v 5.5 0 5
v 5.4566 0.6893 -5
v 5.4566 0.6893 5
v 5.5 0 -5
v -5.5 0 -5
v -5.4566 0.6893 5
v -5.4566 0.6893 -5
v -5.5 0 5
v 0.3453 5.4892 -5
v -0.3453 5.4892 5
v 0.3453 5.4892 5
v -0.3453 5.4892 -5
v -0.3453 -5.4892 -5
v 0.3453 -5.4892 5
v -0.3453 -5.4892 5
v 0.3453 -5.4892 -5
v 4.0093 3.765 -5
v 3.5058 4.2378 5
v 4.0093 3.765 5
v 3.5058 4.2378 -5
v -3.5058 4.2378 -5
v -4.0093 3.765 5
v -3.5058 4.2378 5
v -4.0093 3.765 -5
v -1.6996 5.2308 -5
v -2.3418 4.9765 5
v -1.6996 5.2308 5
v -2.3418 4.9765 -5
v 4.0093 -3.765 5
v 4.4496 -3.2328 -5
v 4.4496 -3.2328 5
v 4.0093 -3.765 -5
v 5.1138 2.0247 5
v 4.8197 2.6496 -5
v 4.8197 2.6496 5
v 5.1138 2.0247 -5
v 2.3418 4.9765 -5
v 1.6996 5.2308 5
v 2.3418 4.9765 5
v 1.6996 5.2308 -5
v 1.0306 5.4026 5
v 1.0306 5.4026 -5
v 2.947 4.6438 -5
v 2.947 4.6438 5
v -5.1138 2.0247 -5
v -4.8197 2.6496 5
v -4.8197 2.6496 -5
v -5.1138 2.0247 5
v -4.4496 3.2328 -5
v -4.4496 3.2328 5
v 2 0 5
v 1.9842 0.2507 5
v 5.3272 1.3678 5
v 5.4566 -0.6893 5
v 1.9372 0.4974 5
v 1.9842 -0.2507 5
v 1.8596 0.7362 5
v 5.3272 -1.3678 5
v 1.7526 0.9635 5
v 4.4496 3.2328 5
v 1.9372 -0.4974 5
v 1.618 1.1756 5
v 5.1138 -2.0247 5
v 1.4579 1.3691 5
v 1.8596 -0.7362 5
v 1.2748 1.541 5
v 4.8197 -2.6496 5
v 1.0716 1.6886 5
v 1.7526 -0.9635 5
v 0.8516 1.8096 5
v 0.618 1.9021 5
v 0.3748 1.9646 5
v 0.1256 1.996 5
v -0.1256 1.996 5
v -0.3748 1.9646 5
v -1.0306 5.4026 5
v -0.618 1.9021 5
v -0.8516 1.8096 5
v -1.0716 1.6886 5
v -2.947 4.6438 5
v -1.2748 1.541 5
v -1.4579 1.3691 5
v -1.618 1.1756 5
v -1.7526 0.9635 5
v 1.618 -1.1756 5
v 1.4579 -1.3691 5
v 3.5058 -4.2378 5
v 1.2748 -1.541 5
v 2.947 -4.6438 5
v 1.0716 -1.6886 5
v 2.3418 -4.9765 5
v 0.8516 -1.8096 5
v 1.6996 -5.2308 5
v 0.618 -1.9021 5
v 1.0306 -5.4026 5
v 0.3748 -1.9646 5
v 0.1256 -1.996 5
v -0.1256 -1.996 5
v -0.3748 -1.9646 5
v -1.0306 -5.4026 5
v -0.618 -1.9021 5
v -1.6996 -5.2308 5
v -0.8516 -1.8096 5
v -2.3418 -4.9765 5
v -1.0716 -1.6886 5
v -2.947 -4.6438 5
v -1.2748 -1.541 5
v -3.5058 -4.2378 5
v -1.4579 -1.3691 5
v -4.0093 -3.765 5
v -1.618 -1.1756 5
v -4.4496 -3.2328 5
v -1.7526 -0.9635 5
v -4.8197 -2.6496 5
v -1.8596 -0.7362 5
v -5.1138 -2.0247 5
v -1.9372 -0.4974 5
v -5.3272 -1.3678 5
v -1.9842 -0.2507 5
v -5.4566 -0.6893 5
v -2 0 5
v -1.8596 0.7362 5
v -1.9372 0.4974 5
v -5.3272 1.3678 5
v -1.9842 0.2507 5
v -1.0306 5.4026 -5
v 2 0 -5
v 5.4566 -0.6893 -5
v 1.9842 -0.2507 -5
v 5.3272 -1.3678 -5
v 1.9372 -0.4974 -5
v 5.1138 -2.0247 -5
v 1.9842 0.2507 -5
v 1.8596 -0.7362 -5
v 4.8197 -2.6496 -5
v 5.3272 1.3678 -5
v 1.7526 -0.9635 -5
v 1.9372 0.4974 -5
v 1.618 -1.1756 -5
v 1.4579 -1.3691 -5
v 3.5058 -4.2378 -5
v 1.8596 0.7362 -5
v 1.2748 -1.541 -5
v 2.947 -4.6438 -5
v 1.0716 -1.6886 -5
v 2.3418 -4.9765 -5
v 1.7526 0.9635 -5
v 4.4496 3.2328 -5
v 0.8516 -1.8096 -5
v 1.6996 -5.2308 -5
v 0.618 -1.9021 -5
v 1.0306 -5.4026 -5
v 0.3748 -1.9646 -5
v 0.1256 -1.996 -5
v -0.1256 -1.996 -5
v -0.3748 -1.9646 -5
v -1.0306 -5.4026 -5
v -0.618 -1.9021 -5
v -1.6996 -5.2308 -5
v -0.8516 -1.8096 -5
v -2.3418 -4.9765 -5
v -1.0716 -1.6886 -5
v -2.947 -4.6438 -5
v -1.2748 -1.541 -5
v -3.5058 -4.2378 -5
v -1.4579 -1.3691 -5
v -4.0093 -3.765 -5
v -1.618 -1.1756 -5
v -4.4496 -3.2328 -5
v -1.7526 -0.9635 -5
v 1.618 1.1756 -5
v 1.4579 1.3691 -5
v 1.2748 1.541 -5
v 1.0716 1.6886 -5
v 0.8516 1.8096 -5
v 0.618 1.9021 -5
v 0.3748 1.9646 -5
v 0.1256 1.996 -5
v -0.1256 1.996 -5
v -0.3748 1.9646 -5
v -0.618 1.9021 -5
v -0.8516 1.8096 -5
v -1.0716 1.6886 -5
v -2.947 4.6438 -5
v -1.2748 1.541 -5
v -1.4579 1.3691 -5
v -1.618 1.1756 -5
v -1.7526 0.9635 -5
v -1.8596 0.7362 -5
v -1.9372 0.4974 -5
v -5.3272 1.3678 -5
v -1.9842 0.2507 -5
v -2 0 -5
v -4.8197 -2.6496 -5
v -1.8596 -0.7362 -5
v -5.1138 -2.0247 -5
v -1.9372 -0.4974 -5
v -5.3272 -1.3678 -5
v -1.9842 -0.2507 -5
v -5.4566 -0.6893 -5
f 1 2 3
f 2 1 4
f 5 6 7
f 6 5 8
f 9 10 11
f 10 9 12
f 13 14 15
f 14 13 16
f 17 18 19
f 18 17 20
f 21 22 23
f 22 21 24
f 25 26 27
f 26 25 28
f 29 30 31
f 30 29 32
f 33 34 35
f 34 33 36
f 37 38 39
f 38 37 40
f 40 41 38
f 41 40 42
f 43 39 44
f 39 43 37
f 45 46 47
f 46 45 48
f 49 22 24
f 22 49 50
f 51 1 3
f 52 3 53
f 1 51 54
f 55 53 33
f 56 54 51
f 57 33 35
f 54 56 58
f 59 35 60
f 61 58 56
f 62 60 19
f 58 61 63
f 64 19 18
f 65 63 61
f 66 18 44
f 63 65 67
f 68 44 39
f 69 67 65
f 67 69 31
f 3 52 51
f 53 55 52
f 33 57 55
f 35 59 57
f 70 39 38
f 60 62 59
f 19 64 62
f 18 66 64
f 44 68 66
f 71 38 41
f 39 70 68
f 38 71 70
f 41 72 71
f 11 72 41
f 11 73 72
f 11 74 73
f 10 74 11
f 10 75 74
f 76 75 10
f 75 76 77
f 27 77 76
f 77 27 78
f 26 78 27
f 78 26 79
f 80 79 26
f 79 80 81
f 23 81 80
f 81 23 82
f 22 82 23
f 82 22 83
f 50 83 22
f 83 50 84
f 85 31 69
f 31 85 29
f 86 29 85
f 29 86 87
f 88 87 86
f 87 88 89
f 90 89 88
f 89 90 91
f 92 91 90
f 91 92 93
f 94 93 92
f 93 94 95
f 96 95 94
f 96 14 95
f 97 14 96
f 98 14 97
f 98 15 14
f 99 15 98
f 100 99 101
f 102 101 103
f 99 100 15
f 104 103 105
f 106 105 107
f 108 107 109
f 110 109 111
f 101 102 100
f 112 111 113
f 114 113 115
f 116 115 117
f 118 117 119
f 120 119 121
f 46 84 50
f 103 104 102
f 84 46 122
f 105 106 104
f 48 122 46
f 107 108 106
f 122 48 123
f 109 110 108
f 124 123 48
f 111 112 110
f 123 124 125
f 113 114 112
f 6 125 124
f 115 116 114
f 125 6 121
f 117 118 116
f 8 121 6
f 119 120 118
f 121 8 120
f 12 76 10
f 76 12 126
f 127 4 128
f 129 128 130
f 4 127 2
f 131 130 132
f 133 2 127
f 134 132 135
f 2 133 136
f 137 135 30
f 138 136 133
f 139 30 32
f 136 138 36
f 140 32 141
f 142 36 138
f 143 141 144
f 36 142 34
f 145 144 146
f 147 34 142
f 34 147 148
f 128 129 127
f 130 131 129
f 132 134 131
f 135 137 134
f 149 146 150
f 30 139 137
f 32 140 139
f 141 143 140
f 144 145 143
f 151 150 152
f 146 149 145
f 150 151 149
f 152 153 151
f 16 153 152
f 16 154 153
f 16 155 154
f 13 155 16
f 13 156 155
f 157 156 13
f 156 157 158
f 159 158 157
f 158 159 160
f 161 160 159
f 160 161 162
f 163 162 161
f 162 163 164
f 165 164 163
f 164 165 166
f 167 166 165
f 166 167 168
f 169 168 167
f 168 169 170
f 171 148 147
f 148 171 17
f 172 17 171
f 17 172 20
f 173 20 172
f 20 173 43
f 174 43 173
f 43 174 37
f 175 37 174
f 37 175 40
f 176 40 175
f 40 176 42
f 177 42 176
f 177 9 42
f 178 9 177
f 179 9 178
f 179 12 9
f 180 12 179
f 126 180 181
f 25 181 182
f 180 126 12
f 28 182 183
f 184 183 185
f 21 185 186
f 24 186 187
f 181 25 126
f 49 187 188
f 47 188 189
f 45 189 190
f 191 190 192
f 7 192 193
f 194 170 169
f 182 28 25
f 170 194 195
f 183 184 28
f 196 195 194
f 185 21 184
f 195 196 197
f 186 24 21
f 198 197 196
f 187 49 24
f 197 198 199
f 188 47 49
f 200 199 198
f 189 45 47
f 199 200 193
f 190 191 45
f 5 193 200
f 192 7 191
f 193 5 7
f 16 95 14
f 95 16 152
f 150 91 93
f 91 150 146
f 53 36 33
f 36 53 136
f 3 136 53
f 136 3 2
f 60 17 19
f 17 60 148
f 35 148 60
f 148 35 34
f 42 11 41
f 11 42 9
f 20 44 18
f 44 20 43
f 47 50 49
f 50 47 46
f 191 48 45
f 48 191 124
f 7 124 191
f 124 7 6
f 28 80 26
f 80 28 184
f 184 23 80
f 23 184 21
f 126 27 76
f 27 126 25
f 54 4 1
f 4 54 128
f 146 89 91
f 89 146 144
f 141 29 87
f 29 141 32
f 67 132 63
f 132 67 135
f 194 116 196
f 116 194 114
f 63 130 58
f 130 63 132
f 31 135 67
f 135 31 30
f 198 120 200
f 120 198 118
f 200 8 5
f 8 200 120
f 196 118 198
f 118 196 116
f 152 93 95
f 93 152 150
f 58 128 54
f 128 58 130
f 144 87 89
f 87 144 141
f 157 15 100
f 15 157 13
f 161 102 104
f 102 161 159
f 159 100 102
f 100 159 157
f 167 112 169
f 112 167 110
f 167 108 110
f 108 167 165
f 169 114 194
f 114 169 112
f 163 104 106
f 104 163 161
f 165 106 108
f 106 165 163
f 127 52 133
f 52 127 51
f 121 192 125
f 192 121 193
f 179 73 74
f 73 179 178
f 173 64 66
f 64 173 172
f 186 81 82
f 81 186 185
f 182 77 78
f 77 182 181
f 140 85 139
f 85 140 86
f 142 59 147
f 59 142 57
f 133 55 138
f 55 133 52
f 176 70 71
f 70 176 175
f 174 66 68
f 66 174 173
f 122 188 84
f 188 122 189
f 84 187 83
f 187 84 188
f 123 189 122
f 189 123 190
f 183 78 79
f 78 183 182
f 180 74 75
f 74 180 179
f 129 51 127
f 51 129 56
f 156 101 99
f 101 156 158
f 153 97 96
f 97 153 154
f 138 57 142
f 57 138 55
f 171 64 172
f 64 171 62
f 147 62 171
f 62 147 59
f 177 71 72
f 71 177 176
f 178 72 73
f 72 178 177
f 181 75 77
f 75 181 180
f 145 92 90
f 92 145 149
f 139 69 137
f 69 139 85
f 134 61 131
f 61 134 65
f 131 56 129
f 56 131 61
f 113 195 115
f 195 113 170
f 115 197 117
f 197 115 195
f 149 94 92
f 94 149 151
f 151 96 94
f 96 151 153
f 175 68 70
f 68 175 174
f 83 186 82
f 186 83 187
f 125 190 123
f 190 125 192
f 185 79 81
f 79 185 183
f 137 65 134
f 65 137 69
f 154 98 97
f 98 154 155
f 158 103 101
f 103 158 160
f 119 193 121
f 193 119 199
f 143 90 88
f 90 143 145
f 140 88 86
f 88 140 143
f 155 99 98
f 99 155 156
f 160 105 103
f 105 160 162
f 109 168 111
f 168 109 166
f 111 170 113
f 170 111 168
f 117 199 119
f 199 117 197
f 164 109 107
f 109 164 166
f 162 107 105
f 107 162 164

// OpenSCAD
$fn = 50;


difference() {
	union() {
		translate(v = [0, 0, -5.0000000000]) {
			cylinder(h = 10, r = 5.5000000000);
		}
	}
	union() {
		translate(v = [0, 0, -100.0000000000]) {
			cylinder(h = 200, r = 2);
		}
	}
}
